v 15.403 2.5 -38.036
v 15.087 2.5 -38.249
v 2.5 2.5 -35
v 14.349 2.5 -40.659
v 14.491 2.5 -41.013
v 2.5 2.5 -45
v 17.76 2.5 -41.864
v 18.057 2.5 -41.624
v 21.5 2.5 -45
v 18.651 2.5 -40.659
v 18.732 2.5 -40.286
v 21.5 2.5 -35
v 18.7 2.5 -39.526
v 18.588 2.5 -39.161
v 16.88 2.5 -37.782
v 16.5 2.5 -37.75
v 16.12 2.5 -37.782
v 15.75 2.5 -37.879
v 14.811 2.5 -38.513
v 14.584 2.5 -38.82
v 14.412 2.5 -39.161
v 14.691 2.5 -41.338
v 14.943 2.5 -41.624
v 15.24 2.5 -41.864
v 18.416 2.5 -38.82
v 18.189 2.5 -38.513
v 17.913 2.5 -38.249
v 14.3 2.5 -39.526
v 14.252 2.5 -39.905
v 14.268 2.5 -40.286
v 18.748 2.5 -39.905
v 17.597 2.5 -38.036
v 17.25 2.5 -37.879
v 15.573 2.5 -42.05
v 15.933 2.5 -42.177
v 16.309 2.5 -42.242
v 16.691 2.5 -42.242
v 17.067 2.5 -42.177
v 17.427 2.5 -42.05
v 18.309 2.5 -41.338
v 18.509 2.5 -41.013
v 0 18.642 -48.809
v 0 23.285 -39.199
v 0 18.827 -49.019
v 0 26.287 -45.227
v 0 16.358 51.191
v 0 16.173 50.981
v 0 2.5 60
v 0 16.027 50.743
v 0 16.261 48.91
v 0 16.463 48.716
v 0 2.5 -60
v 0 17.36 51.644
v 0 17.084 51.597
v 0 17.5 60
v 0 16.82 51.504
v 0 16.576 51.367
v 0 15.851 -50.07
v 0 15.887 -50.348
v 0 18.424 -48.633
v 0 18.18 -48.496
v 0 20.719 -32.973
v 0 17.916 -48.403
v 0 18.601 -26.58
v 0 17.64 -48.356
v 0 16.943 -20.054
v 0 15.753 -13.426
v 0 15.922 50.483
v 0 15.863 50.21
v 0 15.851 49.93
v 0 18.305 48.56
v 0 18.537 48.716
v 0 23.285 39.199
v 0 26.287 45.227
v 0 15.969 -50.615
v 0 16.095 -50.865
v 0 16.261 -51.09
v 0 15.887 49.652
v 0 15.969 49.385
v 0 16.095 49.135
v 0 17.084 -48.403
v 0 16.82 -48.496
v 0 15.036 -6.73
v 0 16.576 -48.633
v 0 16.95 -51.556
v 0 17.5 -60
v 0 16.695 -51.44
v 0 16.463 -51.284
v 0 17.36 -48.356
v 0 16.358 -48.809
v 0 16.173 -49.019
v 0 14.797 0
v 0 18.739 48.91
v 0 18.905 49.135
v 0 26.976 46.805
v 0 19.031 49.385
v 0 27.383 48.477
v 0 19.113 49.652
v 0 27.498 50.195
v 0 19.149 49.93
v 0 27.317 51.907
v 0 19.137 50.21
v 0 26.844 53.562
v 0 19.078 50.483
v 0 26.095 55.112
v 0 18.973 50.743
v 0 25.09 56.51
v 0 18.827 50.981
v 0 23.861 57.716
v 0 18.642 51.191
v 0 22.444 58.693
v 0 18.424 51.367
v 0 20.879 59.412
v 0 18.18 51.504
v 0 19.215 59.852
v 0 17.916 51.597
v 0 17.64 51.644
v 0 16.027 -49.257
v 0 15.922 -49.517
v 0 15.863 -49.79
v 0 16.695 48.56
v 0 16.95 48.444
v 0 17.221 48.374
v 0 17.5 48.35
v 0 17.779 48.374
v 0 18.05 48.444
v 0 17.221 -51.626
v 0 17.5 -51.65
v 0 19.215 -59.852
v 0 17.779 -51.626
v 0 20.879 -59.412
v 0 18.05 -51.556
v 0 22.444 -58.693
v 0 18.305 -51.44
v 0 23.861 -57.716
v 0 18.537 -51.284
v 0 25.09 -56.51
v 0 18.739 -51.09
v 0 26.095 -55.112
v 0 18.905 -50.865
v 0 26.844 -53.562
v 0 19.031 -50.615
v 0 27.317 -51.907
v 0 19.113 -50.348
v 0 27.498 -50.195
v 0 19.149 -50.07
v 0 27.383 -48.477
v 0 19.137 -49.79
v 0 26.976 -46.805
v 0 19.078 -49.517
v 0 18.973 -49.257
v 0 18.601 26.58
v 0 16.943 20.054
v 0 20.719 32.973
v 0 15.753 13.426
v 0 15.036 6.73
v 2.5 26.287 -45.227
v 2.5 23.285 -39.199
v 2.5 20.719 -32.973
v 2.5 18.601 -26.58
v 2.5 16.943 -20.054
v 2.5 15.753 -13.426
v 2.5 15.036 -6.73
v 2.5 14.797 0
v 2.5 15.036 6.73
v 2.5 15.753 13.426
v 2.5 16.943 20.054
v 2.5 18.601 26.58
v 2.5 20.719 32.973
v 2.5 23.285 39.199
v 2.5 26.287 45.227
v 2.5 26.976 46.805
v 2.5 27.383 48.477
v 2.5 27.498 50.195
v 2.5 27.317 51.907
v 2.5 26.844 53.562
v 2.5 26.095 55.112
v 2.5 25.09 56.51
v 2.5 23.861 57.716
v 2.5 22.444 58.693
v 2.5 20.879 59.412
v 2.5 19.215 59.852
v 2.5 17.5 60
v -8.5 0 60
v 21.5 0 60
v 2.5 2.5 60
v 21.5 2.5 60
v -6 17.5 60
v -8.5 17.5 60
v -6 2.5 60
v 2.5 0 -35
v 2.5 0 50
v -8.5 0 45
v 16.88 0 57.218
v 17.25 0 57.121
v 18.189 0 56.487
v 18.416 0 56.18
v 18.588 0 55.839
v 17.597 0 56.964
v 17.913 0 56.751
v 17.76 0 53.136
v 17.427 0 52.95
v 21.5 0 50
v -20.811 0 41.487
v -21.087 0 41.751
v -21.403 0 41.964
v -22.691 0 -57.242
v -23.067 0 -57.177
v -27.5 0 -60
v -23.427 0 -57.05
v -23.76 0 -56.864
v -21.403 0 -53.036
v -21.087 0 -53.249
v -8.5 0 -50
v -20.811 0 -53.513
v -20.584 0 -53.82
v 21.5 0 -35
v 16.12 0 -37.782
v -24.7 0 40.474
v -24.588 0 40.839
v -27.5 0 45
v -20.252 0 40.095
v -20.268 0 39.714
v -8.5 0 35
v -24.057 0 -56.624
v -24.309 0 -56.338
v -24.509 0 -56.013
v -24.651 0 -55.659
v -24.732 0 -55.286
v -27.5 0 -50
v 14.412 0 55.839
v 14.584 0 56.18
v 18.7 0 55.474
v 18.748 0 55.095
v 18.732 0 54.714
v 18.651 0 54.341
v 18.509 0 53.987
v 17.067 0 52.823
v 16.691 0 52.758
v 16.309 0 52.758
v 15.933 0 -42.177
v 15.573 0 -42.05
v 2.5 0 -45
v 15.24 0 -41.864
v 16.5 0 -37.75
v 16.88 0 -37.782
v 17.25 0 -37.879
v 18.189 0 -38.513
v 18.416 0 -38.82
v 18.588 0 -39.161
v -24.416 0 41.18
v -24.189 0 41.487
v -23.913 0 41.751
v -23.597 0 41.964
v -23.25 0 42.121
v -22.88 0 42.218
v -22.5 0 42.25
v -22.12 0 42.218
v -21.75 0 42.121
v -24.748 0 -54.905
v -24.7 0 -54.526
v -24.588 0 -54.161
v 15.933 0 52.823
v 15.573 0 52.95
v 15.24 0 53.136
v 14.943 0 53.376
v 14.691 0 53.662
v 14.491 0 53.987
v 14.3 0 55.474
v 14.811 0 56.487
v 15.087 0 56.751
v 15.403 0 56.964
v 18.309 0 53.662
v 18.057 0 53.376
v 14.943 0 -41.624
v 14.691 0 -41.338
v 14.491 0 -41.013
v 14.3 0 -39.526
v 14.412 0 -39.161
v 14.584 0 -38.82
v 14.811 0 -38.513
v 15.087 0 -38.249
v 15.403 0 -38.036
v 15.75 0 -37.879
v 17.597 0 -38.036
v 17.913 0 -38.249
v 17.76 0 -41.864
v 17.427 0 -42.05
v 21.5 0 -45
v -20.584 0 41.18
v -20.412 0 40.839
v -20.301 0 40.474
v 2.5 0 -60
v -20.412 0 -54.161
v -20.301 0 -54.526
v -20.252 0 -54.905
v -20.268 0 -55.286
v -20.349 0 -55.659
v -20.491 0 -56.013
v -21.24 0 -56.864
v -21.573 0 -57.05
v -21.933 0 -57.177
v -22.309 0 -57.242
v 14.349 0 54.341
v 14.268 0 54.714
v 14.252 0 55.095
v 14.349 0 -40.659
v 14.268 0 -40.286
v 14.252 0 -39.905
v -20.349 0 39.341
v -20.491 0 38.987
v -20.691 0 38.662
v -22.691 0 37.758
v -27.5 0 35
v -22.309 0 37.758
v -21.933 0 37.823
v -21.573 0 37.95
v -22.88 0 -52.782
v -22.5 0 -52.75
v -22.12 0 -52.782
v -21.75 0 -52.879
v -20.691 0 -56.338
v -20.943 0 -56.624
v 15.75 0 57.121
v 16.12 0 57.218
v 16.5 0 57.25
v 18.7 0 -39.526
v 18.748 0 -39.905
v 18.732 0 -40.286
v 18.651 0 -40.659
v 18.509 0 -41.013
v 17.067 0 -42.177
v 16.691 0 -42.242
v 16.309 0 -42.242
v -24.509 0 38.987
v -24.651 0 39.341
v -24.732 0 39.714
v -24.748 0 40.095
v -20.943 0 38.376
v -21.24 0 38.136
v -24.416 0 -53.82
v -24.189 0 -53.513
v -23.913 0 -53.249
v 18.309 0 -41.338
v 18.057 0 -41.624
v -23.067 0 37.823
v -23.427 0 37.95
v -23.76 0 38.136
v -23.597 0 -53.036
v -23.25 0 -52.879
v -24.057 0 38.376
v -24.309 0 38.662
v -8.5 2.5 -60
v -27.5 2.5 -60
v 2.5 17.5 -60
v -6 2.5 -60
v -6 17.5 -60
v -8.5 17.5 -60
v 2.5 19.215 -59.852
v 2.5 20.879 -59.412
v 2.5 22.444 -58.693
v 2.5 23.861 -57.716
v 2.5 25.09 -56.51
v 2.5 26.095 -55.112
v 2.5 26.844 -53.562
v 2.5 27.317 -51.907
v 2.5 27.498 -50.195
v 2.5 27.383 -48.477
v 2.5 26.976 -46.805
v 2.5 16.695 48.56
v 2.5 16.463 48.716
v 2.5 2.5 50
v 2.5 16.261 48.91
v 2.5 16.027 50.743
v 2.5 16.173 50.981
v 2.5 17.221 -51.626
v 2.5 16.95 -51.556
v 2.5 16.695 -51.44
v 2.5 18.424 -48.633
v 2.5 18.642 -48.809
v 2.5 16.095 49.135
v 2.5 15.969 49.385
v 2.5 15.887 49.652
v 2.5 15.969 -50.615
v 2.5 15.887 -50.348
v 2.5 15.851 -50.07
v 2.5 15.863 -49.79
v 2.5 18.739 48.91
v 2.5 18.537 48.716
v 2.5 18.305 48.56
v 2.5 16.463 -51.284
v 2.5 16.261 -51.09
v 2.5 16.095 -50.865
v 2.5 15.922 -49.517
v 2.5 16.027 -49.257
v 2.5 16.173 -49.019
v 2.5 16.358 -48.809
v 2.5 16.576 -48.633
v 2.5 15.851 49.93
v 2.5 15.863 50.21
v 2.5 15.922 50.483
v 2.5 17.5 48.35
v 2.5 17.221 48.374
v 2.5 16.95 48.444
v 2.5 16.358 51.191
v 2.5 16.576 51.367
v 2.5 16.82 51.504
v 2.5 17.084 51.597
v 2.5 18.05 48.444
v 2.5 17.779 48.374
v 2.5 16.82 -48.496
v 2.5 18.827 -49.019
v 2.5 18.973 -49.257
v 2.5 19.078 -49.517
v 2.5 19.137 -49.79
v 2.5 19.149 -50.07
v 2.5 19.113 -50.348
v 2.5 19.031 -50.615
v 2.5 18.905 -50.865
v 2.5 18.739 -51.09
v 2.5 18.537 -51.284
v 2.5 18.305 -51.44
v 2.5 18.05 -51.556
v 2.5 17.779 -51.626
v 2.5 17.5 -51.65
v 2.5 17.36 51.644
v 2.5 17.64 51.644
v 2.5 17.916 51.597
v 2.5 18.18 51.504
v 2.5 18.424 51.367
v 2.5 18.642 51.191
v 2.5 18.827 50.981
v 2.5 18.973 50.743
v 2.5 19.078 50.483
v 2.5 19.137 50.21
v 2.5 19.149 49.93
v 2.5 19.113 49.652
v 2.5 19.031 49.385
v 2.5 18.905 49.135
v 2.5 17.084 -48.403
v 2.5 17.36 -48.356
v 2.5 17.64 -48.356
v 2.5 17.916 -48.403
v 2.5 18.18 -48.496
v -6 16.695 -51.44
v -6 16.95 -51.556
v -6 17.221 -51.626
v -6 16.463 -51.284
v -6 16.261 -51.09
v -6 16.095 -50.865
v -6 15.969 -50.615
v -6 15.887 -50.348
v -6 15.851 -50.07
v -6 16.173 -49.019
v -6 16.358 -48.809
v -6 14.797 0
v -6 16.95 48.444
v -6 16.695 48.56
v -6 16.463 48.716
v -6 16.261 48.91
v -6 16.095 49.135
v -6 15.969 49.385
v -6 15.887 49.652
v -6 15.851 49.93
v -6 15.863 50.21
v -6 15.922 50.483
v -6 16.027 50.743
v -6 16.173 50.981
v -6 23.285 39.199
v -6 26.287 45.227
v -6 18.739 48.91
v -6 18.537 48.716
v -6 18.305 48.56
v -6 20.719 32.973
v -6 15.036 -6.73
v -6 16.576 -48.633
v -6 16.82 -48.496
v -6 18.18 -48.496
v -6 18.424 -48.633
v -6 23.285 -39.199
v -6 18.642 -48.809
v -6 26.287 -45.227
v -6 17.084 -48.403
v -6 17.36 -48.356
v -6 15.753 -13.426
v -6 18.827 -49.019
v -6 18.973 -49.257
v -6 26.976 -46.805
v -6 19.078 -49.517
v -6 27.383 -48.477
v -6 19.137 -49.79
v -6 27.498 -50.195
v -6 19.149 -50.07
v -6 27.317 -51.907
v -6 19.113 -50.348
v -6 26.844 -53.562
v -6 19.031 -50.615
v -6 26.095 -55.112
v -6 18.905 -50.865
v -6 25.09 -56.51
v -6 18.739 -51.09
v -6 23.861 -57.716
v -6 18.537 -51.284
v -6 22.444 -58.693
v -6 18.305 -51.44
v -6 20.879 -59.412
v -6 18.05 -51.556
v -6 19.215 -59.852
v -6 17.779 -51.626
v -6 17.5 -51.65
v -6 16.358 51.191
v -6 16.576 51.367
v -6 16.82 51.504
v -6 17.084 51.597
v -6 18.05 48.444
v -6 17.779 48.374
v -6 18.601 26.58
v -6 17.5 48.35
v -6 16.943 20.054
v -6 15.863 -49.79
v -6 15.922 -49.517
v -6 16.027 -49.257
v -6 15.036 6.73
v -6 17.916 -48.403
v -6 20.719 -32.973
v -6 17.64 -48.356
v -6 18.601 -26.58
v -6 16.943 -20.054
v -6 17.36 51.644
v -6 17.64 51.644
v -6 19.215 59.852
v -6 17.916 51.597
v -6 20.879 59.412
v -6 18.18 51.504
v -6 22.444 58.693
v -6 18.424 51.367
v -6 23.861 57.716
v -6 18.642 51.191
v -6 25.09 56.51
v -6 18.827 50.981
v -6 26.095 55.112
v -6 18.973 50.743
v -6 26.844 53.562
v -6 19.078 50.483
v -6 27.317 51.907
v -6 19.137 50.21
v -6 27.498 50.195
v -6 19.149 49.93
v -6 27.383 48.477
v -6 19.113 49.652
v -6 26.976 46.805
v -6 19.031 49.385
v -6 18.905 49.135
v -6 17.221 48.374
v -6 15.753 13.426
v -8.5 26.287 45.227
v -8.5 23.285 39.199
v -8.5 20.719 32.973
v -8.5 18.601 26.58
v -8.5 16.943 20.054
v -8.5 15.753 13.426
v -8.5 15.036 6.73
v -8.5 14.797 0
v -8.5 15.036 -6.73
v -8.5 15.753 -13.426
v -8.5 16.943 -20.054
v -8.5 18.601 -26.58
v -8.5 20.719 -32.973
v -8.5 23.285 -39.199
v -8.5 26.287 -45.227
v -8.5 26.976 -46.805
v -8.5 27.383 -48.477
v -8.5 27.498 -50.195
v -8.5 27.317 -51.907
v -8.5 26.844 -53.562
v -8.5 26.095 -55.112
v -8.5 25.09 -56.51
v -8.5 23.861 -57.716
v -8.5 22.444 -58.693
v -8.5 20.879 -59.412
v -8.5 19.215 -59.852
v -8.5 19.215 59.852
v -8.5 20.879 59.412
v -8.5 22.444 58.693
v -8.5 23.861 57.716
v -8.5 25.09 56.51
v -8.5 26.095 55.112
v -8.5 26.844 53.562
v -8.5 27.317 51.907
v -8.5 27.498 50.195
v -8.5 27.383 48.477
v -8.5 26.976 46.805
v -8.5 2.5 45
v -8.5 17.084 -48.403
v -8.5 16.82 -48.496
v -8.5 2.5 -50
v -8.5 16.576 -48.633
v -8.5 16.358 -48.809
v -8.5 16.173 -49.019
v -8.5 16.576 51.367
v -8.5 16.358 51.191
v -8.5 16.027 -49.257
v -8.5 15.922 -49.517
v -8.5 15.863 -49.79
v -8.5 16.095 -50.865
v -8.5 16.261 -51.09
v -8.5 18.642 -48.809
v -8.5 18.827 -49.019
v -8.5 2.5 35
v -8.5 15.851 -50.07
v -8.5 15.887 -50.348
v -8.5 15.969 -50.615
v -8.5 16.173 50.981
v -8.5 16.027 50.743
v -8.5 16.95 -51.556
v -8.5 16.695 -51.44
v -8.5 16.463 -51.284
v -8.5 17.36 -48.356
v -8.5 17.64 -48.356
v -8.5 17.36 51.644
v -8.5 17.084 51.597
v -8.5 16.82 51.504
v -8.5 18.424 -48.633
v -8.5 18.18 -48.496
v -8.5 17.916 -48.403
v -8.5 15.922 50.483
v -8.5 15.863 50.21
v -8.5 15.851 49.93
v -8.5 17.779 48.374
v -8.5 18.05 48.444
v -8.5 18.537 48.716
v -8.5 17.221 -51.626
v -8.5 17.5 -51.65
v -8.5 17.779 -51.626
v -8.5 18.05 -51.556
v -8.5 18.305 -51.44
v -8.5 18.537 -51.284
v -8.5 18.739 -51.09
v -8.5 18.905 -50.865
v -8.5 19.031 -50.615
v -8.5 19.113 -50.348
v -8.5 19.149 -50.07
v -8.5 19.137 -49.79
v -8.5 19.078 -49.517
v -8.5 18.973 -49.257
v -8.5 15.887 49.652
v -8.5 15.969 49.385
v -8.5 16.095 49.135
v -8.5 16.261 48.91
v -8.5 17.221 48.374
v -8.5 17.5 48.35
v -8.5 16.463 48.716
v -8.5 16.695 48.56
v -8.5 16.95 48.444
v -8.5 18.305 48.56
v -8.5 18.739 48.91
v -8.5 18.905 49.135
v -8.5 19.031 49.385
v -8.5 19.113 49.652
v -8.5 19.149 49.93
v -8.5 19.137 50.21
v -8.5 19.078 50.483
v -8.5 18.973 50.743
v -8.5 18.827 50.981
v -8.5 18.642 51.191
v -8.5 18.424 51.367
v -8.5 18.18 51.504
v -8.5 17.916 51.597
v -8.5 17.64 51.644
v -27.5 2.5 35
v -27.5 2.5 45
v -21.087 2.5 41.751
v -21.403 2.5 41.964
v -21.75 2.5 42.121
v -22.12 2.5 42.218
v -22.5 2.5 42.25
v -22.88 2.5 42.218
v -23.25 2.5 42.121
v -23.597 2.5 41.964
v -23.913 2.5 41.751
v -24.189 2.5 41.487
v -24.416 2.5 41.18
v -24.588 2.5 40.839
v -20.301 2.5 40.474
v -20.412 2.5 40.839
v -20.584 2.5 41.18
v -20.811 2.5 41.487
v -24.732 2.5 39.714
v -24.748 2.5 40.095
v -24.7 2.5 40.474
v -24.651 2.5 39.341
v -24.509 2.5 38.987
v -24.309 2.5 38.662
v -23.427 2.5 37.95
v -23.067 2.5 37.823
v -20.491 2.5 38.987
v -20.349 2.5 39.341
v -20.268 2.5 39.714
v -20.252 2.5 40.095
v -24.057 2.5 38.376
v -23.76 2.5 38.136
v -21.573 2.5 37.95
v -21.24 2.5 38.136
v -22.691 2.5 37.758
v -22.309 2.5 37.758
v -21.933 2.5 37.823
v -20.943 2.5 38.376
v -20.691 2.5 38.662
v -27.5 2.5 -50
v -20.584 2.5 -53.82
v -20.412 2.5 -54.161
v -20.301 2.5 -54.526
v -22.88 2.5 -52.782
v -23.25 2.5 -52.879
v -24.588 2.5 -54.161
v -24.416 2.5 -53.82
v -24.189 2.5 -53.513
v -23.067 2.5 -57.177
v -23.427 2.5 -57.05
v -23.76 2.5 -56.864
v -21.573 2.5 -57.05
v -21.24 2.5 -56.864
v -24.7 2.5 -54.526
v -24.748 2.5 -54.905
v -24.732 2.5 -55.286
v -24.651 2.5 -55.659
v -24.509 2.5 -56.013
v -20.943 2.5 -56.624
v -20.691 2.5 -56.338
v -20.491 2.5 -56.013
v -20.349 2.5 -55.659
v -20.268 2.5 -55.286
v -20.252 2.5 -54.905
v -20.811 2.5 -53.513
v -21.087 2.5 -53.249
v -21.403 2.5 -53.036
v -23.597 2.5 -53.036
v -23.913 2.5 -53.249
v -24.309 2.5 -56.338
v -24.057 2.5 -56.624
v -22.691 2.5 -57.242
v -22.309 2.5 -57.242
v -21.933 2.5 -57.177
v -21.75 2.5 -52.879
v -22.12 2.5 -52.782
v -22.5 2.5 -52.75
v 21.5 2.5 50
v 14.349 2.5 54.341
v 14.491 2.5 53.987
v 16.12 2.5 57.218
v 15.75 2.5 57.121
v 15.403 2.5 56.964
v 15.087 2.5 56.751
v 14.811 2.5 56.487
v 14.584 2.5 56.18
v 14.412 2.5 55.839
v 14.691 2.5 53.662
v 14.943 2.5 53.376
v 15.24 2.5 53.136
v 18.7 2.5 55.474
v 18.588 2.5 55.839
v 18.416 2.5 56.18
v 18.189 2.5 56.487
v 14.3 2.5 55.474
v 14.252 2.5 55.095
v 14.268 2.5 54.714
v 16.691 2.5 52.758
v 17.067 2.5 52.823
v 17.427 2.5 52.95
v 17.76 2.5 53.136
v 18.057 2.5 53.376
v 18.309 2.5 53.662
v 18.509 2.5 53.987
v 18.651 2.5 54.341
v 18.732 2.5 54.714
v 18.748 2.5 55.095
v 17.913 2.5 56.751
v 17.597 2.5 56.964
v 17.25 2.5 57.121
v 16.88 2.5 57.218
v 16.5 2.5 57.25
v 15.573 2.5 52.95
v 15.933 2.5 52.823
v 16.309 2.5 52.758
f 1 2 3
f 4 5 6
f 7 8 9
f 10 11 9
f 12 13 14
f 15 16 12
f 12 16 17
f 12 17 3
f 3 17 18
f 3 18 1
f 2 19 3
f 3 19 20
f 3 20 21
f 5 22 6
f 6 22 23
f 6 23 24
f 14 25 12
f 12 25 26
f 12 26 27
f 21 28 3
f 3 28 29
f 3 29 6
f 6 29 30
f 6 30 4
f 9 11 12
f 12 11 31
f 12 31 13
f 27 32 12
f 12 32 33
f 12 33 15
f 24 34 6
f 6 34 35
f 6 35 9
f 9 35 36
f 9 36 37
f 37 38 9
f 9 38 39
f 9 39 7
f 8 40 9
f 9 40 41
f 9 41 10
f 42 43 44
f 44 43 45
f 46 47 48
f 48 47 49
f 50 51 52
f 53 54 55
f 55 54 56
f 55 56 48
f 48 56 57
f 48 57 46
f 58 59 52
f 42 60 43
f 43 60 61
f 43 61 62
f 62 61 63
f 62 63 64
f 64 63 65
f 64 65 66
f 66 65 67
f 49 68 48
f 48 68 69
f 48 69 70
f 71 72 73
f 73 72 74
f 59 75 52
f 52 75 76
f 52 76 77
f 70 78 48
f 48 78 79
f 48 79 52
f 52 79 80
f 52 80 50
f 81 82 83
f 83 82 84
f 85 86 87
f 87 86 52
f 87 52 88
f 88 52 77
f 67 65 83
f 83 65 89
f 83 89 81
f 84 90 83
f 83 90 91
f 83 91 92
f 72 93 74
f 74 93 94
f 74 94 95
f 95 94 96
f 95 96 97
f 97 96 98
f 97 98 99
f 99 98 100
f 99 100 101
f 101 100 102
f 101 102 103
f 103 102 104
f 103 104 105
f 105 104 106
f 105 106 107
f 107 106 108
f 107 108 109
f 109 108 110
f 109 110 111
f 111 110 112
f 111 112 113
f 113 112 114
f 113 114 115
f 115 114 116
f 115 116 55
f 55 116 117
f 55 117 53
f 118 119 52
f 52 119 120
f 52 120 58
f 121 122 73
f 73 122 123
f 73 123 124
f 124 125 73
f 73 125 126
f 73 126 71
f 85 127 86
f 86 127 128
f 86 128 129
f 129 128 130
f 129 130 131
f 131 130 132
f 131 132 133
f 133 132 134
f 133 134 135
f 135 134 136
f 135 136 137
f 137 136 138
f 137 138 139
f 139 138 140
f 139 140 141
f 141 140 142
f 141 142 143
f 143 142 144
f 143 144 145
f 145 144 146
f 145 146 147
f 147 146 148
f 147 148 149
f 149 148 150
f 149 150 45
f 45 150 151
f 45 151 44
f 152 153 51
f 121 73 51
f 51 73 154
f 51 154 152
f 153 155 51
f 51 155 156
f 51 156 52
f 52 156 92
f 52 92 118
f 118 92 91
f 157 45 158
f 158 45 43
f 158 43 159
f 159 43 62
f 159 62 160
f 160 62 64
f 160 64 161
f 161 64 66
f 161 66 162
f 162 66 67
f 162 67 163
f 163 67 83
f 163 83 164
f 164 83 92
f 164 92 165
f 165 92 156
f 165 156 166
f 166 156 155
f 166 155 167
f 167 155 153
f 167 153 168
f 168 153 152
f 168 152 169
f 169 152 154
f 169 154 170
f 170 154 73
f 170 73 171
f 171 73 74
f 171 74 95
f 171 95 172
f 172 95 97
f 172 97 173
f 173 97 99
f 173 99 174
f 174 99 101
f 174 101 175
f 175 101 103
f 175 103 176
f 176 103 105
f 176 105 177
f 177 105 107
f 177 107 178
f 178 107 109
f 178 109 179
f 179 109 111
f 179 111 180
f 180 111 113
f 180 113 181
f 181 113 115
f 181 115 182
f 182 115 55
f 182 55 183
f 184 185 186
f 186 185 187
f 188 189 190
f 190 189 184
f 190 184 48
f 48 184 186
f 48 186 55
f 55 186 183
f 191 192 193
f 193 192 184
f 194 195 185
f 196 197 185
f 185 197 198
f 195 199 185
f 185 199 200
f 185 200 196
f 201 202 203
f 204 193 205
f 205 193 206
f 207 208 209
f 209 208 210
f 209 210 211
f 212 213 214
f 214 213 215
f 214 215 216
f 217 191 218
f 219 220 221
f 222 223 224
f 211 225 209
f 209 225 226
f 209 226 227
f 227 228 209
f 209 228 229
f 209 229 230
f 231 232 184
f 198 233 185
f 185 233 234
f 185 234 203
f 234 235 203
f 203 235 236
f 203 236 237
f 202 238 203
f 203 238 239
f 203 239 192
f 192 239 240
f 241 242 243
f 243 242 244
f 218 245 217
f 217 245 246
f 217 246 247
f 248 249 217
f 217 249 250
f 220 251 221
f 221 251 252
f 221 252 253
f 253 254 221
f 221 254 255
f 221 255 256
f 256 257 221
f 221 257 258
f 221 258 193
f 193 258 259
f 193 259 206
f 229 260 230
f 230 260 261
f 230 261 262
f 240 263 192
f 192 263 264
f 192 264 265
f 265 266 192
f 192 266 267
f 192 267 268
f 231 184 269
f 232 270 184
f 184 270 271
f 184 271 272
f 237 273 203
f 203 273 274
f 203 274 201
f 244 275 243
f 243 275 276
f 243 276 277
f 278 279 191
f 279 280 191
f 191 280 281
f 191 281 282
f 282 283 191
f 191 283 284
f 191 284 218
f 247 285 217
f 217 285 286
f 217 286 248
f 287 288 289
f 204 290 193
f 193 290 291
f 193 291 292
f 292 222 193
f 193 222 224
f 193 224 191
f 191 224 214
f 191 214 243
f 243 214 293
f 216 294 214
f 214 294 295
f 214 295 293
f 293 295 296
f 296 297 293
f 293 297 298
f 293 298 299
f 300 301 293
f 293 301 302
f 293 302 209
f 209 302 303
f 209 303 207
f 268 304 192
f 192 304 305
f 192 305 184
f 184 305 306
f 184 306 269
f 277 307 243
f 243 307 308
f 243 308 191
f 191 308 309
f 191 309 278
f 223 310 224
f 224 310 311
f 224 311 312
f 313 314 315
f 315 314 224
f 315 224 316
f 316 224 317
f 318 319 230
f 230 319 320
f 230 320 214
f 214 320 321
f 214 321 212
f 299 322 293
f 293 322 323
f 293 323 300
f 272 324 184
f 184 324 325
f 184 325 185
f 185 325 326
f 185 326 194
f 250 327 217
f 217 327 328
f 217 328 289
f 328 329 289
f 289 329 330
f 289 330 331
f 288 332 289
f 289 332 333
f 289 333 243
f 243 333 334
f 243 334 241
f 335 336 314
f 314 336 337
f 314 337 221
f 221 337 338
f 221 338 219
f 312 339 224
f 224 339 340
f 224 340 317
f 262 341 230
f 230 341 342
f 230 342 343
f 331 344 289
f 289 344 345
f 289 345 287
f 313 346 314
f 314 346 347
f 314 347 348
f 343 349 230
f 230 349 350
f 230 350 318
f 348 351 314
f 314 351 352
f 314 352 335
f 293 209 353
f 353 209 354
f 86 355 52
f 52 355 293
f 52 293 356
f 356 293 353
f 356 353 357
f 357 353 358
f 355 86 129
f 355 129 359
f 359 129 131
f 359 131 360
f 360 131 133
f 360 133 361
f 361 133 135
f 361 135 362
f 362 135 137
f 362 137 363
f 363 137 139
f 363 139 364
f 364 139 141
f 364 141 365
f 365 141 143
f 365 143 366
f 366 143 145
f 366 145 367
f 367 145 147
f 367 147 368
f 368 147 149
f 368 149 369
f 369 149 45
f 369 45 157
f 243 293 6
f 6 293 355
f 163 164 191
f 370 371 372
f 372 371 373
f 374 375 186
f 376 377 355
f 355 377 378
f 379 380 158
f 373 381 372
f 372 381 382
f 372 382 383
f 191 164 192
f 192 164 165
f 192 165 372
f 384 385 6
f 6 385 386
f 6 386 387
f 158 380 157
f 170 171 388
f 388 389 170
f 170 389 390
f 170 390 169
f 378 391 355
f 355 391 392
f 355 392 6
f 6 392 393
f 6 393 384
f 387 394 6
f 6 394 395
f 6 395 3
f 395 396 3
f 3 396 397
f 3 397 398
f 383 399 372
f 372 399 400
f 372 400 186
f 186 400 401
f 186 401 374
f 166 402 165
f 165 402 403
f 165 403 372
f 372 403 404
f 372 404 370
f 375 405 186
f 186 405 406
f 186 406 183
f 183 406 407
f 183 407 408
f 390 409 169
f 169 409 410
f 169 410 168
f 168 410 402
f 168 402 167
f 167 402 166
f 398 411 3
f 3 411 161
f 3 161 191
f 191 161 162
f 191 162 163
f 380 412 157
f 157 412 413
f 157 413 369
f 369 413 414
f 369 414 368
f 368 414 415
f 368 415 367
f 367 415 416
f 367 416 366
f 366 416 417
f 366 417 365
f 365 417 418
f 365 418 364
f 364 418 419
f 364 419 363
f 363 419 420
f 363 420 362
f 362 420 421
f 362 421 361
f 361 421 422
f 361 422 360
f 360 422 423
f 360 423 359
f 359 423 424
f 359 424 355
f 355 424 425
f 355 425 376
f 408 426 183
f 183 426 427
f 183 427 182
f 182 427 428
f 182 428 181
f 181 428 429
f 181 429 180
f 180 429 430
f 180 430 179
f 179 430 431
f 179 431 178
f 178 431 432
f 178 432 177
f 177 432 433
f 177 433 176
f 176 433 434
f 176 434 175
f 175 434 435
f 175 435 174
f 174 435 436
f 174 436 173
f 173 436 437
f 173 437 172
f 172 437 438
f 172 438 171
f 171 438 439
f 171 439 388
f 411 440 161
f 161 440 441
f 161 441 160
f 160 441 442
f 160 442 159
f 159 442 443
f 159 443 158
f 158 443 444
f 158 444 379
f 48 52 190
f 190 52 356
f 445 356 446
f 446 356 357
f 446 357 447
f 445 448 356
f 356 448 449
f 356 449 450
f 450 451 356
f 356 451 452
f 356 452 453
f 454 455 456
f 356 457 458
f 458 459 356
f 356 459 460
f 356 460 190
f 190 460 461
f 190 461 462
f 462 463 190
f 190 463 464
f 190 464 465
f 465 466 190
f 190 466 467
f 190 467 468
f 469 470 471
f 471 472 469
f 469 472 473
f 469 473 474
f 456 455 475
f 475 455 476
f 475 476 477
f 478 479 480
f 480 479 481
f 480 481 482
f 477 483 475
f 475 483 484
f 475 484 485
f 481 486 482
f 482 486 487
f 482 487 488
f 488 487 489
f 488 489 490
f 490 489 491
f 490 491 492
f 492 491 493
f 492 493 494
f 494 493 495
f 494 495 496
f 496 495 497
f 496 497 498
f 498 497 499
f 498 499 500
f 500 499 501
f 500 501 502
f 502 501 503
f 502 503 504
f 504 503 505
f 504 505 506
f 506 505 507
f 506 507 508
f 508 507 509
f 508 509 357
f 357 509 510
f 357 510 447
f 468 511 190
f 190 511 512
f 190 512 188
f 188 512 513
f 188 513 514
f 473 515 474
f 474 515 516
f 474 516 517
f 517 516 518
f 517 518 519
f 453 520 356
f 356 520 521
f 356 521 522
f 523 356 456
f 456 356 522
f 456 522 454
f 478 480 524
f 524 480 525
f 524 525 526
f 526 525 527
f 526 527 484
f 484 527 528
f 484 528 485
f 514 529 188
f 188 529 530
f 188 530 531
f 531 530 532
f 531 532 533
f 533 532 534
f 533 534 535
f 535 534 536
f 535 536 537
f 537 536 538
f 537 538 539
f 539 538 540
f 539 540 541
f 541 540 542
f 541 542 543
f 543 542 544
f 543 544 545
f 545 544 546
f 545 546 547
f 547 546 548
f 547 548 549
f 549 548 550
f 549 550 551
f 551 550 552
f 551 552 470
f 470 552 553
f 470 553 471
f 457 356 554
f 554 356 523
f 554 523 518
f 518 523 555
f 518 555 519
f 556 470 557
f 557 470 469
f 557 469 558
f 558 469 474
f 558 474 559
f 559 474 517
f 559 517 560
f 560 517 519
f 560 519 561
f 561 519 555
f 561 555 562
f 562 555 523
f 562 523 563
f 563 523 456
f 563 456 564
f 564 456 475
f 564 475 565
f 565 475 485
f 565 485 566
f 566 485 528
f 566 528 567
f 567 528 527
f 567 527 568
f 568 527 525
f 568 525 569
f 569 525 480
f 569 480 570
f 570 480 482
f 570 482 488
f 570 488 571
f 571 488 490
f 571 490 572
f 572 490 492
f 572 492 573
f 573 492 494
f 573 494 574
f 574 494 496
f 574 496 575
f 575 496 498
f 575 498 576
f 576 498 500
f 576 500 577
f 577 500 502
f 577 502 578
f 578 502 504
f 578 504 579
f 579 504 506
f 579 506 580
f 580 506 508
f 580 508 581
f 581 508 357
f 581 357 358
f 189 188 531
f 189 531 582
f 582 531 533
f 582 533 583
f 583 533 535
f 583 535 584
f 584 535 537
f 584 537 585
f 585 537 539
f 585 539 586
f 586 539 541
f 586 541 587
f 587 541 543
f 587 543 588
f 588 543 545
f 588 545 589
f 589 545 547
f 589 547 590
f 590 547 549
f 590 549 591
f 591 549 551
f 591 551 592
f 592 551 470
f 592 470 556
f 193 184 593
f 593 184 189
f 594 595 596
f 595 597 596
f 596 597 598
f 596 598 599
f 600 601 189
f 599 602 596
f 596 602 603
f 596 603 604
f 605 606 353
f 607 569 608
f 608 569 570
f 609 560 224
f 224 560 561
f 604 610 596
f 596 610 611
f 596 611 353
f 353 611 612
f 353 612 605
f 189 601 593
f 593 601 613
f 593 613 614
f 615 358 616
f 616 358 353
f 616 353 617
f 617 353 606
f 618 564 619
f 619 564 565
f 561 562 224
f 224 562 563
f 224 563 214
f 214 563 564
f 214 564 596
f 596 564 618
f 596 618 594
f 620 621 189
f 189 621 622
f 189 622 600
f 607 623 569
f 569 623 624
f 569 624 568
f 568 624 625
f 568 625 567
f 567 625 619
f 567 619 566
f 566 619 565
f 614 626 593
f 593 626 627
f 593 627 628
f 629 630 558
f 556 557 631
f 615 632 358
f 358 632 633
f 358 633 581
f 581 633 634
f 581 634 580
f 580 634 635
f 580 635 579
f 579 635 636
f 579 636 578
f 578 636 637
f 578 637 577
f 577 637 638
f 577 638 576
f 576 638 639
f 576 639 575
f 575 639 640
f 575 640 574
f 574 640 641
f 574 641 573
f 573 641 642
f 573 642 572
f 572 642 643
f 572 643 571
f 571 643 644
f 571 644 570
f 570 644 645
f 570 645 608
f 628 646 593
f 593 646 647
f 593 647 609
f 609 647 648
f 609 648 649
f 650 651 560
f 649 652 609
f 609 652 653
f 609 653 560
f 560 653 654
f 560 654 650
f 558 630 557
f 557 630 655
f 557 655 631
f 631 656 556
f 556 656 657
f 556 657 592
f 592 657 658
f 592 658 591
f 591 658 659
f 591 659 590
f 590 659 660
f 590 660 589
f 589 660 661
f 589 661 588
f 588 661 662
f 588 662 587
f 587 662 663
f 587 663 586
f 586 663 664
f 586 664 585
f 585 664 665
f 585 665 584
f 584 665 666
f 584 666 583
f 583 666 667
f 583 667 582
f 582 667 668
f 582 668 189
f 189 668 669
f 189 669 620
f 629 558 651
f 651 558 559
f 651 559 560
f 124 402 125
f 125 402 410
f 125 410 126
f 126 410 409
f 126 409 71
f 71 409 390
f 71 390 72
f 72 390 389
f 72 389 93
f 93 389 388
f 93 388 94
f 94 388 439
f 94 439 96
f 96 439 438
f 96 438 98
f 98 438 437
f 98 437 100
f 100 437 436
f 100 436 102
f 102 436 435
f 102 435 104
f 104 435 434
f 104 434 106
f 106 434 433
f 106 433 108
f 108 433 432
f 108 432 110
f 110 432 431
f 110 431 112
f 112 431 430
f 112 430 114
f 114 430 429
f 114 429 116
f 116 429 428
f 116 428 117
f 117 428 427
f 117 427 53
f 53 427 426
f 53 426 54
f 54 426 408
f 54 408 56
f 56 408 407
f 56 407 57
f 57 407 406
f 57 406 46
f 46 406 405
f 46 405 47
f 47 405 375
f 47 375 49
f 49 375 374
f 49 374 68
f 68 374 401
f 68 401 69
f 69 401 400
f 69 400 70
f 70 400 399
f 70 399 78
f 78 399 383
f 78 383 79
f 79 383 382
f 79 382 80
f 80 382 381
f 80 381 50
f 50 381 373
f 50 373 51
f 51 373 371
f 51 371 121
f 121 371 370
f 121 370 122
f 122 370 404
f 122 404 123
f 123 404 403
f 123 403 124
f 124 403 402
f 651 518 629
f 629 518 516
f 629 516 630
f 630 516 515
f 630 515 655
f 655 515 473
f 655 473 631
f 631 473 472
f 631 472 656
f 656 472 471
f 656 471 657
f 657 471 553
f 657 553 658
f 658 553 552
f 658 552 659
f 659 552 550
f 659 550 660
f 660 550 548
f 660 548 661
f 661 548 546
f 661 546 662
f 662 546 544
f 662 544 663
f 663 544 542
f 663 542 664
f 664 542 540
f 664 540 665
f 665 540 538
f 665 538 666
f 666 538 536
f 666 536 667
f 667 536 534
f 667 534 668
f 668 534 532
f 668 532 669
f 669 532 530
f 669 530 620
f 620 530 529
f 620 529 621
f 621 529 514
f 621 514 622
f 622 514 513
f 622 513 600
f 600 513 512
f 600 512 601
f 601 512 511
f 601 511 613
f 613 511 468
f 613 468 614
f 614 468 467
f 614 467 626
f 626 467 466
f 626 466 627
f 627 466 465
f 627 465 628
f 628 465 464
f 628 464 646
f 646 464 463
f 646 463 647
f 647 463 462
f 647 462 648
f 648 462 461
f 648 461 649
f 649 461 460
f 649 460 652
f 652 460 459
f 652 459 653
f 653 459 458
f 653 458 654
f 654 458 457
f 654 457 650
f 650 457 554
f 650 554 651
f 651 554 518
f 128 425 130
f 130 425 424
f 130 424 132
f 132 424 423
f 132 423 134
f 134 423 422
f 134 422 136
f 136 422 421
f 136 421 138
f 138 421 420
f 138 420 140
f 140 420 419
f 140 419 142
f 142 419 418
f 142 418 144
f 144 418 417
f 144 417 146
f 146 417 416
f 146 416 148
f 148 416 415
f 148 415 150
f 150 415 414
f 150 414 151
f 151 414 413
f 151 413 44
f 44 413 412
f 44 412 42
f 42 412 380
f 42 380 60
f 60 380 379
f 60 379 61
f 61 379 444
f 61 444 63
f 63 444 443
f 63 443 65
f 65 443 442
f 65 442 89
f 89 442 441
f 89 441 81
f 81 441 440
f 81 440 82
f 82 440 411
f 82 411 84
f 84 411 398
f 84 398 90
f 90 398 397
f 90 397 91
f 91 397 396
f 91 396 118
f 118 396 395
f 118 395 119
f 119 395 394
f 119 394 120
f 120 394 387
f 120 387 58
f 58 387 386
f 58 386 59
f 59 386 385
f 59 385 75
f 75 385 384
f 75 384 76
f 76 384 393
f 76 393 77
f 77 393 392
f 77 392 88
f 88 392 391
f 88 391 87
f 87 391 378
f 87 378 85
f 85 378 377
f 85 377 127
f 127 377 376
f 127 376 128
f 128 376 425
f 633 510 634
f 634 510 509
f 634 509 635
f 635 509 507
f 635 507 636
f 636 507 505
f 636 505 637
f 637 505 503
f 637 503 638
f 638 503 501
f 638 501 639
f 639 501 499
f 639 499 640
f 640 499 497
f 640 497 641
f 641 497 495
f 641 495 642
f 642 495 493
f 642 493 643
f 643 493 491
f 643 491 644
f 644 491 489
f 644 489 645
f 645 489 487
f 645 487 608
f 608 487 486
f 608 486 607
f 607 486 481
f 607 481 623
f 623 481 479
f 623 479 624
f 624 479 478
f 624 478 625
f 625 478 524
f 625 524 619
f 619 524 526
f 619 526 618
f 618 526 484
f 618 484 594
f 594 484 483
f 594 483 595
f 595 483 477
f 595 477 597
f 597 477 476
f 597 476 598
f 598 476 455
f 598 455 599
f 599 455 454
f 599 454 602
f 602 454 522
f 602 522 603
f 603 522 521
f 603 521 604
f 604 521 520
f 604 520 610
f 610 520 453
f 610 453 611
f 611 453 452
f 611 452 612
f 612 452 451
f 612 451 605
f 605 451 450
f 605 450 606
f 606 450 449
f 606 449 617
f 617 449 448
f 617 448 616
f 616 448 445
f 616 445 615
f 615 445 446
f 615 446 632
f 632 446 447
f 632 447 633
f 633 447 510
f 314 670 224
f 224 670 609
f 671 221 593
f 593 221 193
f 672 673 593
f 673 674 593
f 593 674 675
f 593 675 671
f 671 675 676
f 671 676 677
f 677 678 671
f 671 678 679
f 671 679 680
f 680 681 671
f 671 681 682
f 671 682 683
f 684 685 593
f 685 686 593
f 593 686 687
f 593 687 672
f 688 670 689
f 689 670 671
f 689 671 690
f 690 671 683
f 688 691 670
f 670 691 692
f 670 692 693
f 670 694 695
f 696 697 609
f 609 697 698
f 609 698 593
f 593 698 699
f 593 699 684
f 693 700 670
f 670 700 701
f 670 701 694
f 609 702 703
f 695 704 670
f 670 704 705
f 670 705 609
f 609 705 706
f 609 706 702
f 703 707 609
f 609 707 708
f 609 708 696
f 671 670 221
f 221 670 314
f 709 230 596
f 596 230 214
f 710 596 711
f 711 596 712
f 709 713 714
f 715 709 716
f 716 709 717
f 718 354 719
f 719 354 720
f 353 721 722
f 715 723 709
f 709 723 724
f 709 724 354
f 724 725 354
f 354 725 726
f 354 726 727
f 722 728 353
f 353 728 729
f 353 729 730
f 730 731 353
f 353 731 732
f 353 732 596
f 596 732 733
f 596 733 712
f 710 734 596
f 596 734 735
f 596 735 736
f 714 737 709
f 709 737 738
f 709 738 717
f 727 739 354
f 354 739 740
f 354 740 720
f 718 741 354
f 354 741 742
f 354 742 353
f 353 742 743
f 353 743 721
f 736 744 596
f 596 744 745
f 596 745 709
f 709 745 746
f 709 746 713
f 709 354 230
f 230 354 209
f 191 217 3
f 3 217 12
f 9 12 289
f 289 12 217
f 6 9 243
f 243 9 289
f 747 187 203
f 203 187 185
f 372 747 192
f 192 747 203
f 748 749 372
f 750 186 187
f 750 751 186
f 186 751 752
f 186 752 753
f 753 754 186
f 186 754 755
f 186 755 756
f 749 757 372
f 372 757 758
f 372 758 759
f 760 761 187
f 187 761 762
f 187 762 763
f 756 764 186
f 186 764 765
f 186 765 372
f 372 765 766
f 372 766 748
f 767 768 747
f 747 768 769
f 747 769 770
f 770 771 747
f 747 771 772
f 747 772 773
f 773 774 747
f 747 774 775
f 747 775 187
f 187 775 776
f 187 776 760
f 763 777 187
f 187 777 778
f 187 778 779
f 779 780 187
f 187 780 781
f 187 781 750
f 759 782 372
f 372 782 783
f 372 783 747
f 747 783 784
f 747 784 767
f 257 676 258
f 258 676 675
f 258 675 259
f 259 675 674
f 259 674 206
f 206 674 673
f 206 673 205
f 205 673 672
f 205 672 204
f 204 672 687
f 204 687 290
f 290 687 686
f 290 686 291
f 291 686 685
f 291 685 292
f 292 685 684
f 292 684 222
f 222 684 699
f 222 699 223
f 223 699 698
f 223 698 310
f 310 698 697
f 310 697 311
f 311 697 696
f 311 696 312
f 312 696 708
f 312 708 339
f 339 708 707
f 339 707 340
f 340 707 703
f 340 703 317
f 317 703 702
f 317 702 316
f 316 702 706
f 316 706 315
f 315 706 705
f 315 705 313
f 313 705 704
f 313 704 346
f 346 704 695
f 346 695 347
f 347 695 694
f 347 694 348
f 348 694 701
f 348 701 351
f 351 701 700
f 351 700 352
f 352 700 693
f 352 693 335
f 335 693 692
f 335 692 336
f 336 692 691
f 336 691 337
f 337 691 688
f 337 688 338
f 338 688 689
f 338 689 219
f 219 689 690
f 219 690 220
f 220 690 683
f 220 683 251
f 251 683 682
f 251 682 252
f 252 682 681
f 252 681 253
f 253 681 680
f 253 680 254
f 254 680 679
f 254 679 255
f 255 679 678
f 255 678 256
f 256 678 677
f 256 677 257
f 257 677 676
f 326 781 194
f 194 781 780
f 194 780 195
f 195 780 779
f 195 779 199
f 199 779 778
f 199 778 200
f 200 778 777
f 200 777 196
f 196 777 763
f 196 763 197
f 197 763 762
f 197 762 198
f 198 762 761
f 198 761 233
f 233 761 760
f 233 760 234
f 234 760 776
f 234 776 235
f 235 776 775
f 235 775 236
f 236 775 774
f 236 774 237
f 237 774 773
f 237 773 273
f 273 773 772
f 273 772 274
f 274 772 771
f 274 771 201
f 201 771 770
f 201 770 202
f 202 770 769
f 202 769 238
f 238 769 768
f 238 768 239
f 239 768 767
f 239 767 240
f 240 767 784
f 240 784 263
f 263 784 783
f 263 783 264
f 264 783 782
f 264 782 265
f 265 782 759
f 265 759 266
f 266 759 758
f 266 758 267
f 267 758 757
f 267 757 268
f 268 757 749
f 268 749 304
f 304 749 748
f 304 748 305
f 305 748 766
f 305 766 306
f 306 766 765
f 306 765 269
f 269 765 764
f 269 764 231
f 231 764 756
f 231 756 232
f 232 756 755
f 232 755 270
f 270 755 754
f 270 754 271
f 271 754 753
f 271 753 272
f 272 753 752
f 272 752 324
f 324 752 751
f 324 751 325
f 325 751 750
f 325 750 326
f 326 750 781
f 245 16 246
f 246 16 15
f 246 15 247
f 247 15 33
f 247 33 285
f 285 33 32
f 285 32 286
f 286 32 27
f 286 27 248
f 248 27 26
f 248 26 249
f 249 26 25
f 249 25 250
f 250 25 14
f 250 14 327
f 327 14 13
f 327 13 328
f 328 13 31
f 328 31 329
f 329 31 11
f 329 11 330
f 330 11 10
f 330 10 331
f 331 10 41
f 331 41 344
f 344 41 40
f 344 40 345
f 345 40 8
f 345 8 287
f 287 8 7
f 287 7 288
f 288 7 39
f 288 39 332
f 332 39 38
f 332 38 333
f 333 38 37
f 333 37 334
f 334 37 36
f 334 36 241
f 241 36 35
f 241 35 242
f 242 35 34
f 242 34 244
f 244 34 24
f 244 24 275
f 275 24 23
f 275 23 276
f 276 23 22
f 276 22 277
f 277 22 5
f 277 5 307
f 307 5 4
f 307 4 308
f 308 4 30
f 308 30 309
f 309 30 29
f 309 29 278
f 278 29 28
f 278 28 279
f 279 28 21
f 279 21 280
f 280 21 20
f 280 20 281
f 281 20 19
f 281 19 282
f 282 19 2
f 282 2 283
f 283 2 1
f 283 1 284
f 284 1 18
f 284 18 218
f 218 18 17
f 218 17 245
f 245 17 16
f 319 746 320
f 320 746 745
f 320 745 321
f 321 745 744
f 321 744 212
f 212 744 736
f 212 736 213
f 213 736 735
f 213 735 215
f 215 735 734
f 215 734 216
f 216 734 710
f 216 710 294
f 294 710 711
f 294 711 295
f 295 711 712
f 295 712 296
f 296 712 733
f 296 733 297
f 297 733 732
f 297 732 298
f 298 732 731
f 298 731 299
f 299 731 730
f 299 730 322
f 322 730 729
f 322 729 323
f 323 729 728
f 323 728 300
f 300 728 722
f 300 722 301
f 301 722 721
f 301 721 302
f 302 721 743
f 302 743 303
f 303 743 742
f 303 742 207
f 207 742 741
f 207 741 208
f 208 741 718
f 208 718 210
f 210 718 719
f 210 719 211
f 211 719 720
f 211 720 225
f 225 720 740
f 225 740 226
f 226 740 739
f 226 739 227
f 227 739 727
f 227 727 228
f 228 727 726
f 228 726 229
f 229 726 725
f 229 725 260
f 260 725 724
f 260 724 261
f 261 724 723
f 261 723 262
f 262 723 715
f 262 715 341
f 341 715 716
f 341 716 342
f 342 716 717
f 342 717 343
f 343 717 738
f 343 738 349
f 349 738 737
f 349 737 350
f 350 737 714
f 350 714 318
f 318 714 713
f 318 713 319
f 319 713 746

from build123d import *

# Parameters (mm, degrees)
BOSS_EXTRUDE1_DEPTH        = 2.5
BOSS_EXTRUDE2_START        = -6
BOSS_EXTRUDE2_DEPTH        = 2.5
BOSS_EXTRUDE3_REACH        = 68.547
SKETCH4_W                  = 120
SKETCH4_H                  = 2.5
M4X0_7_TAPPED_HOLE1_D      = 3.3
SKETCH5_W                  = 30
SKETCH5_H                  = 10
BOSS_EXTRUDE4_DEPTH        = 2.5
F_4_5_4_5_DIAMETER_HOLE1_D = 4.5


with BuildPart() as part:
    # Sketch1 → Boss-Extrude1 (new body)
    with BuildSketch(Plane(origin=(0, 0, 0), x_dir=(0, 0, -1), z_dir=(1, 0, 0))):
        with BuildLine():
            Line((-60, 17.5), (-60, 0))
            Line((-60, 0), (60, 0))
            Line((60, 0), (60, 17.5))
            ThreePointArc((60, 17.5), (55.112108327, 26.094553418), (45.22673031, 26.287257619))
            ThreePointArc((45.22673031, 26.287257619), (0, 14.796523563), (-45.22673031, 26.287257619))
            ThreePointArc((-45.22673031, 26.287257619), (-55.112108327, 26.094553418), (-60, 17.5))
        make_face()
    extrude(amount=BOSS_EXTRUDE1_DEPTH)


with BuildPart() as body_2:
    # Sketch1<2> → Boss-Extrude2 (new body)
    with BuildSketch(Plane(origin=(0, 0, 0), x_dir=(0, 0, -1), z_dir=(1, 0, 0)).offset(BOSS_EXTRUDE2_START)):
        with BuildLine():
            Line((-60, 17.5), (-60, 0))
            Line((-60, 0), (60, 0))
            Line((60, 0), (60, 17.5))
            ThreePointArc((60, 17.5), (55.112108327, 26.094553418), (45.22673031, 26.287257619))
            ThreePointArc((45.22673031, 26.287257619), (0, 14.796523563), (-45.22673031, 26.287257619))
            ThreePointArc((-45.22673031, 26.287257619), (-55.112108327, 26.094553418), (-60, 17.5))
        make_face()
    extrude(amount=-BOSS_EXTRUDE2_DEPTH)

    # Sketch4 → Boss-Extrude3 (add, up to next)
    with BuildSketch(Plane.ZY, mode=Mode.PRIVATE) as boss_extrude3_sk1:
        with Locations((0, 1.25)):
            Rectangle(SKETCH4_W, SKETCH4_H)
    boss_extrude3_tool1 = extrude(boss_extrude3_sk1.sketch, amount=BOSS_EXTRUDE3_REACH, mode=Mode.PRIVATE) - body_2.part

    add(part.part)  # Boss-Extrude3 merges part
    add(boss_extrude3_tool1.solids().sort_by_distance((0, 1.25, 0))[0])

    # M4x0.7 Tapped Hole1 (through all)
    with Locations(Plane(origin=(2.5, 0, 0), x_dir=(0, 0, 1), z_dir=(1, 0, 0))):
        with Locations((-50, -17.5), (50, -17.5)):
            Hole(M4X0_7_TAPPED_HOLE1_D / 2)

    # Sketch5 → Boss-Extrude4 (add)
    with BuildSketch(Plane.XZ):
        with Locations((-12.5, 40)):
            Rectangle(SKETCH5_W, SKETCH5_H)
        with Locations((-12.5, -55)):
            Rectangle(SKETCH5_W, SKETCH5_H)
        with Locations((6.5, 55)):
            Rectangle(SKETCH5_W, SKETCH5_H)
        with Locations((6.5, -40)):
            Rectangle(SKETCH5_W, SKETCH5_H)
    extrude(amount=-BOSS_EXTRUDE4_DEPTH)

    # Ø4.5 (4.5) Diameter Hole1 (through all)
    with Locations(Plane(origin=(0, 2.5, 0), x_dir=(1, 0, 0), z_dir=(0, 1, 0))):
        with Locations((-22.5, 55), (16.5, 40), (16.5, -55), (-22.5, -40)):
            Hole(F_4_5_4_5_DIAMETER_HOLE1_D / 2)


solid = body_2.part
